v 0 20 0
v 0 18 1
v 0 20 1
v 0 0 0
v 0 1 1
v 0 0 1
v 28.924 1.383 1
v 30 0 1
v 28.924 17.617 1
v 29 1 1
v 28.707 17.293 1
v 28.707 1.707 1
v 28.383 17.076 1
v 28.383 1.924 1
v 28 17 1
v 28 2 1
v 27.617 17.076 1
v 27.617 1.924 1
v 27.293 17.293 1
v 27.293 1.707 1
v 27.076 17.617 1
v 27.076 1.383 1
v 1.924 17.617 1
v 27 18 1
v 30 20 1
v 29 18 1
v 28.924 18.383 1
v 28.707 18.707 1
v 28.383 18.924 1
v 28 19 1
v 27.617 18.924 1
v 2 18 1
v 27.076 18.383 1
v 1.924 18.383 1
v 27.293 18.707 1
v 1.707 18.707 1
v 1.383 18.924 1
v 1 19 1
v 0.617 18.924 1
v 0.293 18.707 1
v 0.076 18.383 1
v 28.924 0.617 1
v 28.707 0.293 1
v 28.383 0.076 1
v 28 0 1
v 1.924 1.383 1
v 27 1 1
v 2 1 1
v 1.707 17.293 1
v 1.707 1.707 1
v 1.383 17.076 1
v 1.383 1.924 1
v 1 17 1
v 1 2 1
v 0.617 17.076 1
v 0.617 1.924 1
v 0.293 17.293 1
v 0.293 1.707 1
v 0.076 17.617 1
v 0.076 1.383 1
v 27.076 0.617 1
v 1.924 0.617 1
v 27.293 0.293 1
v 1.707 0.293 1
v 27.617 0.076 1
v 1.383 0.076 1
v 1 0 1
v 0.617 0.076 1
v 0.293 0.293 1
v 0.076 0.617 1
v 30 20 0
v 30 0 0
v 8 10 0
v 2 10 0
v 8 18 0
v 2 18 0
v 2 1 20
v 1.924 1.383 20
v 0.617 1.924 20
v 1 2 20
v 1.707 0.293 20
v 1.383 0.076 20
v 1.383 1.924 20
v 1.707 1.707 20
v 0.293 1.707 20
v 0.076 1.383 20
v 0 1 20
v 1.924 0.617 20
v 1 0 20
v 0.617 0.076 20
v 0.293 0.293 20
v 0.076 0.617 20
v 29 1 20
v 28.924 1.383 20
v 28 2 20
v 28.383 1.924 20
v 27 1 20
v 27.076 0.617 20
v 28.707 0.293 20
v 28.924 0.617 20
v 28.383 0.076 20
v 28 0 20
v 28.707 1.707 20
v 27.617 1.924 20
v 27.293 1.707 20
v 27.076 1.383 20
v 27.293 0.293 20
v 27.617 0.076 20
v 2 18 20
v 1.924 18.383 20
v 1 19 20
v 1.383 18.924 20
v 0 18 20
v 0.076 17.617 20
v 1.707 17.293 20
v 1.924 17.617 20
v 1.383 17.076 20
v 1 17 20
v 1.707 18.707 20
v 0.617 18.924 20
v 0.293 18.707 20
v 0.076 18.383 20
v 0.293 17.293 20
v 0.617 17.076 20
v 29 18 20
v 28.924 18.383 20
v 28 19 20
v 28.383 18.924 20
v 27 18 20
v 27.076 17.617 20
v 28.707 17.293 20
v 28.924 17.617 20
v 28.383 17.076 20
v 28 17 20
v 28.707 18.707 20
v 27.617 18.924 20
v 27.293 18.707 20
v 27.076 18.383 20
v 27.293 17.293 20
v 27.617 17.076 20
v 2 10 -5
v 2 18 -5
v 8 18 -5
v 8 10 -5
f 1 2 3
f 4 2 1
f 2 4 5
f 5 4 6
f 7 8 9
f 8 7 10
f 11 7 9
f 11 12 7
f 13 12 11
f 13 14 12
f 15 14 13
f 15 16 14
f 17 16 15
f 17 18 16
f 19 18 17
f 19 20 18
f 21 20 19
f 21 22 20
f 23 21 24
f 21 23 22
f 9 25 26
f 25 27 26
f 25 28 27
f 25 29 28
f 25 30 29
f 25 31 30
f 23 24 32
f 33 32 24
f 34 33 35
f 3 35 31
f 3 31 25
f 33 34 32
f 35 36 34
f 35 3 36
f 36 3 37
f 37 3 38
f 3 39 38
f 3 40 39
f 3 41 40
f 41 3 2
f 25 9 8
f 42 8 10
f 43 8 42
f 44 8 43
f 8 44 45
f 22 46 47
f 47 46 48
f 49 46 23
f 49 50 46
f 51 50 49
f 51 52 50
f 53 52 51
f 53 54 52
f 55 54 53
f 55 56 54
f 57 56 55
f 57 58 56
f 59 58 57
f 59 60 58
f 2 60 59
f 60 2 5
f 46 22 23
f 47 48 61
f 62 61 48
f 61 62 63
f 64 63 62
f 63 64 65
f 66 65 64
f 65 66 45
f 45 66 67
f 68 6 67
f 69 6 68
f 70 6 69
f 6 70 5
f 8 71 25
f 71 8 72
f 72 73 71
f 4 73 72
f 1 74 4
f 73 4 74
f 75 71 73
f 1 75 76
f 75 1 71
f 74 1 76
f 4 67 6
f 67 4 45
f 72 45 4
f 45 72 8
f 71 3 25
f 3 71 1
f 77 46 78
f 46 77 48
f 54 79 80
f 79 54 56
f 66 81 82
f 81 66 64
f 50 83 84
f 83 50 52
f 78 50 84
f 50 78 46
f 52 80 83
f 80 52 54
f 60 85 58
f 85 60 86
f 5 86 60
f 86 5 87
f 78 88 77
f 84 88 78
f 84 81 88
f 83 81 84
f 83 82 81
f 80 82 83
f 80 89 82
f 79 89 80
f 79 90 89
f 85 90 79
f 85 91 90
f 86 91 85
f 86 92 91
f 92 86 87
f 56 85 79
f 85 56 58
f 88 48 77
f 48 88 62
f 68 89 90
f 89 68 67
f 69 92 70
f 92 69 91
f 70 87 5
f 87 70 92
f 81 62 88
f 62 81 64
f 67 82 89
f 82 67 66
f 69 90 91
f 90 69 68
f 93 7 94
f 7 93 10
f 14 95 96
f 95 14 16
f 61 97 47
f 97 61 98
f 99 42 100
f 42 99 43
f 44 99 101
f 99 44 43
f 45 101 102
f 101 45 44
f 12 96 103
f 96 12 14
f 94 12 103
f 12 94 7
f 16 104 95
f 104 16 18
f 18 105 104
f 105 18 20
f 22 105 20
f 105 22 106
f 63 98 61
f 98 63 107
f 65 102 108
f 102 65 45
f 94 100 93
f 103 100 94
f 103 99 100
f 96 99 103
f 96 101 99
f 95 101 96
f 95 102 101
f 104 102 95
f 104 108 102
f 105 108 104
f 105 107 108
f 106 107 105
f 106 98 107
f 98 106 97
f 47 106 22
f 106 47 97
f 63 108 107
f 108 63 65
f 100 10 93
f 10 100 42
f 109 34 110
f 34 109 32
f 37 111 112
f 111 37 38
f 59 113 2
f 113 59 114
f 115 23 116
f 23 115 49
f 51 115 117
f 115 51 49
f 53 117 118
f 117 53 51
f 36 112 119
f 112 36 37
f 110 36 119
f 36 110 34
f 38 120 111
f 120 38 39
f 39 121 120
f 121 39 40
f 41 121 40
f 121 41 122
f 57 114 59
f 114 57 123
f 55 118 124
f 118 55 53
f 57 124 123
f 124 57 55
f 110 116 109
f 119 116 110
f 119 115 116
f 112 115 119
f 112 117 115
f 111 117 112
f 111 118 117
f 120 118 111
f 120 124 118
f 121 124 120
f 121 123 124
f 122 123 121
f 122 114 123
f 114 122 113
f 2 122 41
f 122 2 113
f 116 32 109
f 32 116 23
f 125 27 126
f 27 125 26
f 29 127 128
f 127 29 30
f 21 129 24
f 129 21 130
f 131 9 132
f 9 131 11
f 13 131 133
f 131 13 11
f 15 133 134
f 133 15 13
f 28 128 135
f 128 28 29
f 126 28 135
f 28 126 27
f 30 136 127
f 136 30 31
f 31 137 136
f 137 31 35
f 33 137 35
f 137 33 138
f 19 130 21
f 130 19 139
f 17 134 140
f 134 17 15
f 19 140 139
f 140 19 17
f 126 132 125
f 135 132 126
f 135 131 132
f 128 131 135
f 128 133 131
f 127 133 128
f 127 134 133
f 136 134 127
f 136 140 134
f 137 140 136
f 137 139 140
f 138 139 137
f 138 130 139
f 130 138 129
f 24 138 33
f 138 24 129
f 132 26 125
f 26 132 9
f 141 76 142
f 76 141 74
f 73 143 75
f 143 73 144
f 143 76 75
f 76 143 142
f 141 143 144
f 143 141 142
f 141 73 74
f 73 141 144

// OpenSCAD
// Desk base
cube([30, 20, 1]);

// Desk legs - 4 legs positioned in each corner
translate([1, 1, 0])
cylinder(h = 20, r = 1, $fn = 16);

translate([28, 1, 0])
cylinder(h = 20, r = 1, $fn = 16);

translate([1, 18, 0])
cylinder(h = 20, r = 1, $fn = 16);

translate([28, 18, 0])
cylinder(h = 20, r = 1, $fn = 16);

// Desk drawer
translate([2, 10, -5])
cube([6, 8, 5]);
